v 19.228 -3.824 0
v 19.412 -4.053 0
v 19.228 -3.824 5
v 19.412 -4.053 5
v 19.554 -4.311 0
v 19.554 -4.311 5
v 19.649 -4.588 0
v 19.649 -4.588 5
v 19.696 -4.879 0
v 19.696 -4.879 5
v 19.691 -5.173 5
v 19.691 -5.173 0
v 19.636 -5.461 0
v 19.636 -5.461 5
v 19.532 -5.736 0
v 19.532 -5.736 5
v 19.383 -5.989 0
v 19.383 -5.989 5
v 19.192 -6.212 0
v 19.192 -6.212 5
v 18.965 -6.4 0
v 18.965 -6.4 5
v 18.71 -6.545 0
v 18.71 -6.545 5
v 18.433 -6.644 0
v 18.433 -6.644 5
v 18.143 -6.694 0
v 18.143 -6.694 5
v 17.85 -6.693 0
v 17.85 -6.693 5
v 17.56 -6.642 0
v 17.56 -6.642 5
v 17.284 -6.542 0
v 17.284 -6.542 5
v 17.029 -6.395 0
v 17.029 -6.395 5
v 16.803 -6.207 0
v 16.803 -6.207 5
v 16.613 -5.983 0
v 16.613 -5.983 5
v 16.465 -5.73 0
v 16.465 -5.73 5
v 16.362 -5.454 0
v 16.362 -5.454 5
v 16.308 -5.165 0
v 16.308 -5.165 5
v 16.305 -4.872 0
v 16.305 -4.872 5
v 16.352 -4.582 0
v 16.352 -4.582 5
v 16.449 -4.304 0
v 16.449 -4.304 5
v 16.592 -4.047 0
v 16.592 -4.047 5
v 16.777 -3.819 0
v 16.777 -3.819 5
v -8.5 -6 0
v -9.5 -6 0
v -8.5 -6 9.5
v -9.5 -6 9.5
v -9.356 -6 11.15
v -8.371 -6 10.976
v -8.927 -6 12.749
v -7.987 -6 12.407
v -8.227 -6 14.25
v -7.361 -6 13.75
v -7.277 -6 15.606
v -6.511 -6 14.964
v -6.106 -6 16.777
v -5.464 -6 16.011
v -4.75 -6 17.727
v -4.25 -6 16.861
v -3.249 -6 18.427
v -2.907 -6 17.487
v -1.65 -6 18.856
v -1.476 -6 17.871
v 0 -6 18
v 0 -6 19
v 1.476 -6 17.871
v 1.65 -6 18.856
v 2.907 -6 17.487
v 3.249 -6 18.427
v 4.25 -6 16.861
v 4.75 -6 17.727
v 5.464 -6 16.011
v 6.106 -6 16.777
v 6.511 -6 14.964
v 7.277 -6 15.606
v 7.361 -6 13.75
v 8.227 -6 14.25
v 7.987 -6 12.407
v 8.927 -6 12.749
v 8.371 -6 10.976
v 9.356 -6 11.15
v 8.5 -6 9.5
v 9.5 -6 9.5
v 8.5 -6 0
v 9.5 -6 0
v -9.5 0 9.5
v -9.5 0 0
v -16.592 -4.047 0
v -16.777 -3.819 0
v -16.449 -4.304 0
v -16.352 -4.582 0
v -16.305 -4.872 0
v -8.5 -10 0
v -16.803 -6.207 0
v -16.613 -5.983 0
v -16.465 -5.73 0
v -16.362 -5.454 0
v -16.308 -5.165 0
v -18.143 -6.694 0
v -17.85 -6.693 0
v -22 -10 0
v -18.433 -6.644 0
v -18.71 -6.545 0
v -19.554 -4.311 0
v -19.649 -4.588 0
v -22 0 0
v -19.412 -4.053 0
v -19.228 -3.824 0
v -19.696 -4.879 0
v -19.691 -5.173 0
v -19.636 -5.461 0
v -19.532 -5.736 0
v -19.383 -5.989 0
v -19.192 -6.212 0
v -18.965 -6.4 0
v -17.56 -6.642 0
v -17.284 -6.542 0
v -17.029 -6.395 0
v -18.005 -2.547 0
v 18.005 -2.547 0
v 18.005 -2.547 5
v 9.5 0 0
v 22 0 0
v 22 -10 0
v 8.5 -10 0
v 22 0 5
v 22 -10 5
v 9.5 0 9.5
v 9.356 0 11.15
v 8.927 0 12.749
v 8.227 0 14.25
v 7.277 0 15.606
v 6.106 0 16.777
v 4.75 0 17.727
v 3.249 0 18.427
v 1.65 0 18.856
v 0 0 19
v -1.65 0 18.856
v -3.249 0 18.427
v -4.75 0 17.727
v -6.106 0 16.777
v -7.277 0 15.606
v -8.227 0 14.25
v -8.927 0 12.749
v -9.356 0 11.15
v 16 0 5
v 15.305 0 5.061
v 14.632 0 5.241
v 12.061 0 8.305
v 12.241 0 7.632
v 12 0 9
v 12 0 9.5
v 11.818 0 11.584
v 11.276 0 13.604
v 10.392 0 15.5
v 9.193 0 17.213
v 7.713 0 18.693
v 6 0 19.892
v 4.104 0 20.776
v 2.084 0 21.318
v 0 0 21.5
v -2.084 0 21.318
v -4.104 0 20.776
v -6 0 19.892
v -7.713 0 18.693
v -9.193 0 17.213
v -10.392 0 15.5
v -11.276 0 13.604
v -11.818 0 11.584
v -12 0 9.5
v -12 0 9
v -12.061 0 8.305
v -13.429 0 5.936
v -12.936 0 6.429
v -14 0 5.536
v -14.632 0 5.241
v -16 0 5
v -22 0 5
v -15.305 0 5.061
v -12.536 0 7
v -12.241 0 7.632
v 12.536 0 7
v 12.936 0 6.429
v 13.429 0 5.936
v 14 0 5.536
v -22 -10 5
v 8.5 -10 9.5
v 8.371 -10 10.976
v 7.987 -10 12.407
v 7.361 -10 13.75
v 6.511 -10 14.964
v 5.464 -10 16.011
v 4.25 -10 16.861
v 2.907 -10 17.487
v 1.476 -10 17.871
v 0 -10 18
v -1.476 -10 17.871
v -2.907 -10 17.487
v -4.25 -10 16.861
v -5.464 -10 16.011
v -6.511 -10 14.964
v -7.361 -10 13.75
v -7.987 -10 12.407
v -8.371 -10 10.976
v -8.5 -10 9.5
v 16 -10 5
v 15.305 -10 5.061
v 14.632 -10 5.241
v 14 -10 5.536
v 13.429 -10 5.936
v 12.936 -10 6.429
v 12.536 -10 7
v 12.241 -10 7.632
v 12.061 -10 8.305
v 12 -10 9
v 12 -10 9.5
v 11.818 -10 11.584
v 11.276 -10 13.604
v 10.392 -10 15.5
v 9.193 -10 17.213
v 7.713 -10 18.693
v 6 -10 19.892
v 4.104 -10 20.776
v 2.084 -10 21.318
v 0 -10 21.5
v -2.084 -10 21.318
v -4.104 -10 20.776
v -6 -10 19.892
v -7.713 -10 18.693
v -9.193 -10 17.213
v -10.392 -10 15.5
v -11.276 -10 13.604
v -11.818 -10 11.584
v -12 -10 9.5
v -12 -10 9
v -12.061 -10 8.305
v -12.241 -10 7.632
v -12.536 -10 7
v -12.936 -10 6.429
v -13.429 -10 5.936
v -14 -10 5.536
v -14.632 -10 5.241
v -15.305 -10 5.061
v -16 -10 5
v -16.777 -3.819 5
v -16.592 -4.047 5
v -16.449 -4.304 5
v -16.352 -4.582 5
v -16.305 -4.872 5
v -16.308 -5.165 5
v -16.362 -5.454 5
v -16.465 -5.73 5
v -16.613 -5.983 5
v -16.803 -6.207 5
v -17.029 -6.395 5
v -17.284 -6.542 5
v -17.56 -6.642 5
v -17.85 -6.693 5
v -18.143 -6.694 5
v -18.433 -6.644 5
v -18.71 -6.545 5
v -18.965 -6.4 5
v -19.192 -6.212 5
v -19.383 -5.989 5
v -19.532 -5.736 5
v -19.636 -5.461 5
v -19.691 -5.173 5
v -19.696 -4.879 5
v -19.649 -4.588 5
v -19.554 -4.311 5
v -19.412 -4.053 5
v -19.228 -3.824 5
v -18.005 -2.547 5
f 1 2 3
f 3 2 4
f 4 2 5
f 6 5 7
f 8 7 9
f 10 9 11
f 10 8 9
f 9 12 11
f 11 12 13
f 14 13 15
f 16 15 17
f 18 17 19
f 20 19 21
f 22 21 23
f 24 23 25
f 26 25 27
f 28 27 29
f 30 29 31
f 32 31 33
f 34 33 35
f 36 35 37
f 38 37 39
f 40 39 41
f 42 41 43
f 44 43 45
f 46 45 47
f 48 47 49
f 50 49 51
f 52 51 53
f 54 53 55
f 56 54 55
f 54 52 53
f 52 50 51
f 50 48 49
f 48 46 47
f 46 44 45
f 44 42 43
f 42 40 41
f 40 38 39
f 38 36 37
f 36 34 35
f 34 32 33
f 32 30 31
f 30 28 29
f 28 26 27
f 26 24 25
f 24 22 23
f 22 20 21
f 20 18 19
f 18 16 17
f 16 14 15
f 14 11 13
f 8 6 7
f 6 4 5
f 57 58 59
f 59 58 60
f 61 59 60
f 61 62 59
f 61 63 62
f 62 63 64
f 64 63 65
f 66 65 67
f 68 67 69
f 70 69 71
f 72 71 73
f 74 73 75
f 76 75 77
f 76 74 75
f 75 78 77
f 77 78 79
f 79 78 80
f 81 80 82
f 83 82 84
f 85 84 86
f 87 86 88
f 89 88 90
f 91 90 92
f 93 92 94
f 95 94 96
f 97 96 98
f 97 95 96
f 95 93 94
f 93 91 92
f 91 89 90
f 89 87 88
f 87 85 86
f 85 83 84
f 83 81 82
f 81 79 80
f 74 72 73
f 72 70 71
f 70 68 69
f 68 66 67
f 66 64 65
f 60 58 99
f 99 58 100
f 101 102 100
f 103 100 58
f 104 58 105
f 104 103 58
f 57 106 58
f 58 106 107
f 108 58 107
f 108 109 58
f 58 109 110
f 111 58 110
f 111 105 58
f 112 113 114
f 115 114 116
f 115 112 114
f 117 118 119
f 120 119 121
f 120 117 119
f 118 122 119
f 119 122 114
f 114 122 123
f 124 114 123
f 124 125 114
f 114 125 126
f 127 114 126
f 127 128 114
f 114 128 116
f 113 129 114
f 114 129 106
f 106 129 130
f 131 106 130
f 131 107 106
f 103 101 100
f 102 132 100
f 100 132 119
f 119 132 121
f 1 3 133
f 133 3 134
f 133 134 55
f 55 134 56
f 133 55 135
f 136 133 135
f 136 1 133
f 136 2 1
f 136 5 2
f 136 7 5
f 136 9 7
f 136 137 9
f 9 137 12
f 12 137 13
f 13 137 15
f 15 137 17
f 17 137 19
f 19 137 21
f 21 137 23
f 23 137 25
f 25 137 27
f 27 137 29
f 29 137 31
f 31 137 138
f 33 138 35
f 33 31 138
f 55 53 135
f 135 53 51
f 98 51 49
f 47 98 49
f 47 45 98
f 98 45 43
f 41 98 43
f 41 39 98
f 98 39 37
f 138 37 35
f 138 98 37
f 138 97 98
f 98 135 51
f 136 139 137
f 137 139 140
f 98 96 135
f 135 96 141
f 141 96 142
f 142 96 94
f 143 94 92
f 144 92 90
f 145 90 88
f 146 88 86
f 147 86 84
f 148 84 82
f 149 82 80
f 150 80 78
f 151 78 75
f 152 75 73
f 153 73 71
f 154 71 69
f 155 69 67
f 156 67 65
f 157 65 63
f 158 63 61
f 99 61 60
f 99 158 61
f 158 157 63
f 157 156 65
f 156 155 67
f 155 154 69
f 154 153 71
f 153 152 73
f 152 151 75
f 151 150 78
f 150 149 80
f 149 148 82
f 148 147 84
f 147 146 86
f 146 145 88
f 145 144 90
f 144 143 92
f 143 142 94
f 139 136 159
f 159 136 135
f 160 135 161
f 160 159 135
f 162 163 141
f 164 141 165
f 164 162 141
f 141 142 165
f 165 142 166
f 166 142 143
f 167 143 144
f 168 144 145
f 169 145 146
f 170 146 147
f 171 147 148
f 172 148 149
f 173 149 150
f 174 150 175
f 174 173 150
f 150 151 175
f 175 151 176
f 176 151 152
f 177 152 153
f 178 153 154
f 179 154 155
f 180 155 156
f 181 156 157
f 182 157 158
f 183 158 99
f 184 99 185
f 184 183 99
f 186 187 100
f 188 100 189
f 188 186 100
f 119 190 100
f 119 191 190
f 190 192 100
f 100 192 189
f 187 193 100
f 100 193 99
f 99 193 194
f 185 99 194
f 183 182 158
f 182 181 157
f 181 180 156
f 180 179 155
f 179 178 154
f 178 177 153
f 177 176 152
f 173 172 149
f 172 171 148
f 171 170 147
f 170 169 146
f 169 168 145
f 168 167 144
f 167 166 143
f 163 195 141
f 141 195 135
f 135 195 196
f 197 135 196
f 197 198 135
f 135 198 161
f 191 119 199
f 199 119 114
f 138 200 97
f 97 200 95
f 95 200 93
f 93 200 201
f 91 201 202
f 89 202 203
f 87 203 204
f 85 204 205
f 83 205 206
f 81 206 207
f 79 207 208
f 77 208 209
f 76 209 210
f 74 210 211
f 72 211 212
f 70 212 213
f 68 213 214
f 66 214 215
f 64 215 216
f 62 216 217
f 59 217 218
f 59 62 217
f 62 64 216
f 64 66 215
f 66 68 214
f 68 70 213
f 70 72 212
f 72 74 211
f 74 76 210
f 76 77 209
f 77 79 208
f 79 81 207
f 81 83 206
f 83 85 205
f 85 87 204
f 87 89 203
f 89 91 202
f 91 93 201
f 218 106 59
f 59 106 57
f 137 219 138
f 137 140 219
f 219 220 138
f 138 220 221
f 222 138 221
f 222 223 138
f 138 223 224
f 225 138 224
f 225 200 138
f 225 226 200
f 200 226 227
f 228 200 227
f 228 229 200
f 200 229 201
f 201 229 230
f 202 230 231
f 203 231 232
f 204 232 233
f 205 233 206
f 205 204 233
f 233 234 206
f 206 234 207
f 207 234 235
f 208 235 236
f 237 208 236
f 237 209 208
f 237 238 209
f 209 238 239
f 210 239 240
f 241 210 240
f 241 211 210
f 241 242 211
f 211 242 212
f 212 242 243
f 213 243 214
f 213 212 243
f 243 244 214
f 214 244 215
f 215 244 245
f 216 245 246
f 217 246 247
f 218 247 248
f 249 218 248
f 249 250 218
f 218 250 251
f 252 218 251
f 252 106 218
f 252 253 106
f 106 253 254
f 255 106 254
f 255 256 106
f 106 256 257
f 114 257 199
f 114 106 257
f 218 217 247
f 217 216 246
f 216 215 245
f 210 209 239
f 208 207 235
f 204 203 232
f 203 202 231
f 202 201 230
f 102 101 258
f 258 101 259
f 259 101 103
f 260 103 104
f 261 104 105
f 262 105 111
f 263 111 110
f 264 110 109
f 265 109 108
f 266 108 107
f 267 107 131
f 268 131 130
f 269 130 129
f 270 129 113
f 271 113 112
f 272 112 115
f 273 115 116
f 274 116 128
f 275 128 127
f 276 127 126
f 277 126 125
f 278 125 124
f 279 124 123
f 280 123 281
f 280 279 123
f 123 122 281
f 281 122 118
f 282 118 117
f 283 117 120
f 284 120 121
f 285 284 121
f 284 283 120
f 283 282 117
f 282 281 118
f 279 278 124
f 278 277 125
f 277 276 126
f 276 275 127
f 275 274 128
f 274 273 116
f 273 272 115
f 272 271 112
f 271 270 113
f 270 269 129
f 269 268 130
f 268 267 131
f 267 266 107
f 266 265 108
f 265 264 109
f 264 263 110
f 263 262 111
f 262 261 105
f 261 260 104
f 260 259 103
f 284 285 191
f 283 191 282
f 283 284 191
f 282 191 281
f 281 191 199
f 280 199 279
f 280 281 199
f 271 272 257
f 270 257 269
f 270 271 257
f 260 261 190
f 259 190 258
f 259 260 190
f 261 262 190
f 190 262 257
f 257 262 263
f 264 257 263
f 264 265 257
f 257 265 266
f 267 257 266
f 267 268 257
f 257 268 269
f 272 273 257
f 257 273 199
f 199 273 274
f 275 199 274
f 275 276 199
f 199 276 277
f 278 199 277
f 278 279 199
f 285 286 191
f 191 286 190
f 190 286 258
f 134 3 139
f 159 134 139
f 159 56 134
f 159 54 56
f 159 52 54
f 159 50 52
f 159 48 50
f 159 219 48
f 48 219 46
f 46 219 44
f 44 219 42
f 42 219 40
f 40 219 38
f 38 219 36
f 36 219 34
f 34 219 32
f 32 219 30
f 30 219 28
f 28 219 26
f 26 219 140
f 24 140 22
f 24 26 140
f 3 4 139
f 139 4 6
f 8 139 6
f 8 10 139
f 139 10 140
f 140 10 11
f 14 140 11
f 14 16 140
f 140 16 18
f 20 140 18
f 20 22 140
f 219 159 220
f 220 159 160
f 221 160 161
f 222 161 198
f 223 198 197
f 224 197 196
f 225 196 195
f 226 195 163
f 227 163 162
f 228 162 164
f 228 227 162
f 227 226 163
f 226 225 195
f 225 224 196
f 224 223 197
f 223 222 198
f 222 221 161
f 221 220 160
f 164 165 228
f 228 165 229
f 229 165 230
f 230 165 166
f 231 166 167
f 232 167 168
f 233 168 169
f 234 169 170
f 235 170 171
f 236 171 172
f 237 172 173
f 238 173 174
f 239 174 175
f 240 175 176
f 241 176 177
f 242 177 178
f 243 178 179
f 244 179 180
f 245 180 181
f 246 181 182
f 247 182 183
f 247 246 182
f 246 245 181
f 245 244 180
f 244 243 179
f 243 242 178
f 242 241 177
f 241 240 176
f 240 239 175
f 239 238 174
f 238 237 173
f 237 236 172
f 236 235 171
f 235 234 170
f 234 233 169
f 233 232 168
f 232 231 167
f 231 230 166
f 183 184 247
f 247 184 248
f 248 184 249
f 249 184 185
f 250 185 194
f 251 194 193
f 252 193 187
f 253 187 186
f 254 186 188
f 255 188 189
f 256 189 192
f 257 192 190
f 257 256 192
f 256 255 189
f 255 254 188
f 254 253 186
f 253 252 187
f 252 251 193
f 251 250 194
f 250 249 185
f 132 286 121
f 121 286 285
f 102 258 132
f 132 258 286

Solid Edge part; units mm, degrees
sketch "Sketch1" plane through (0, 0, 0) normal (0, -1, 0) x (1, 0, 0)
  line L0 (22, 0) -> (22, 5)
  line L1 (22, 5) -> (16, 5)
  arc A0 (12, 9) -> (16, 5) centre (16, 9) ccw
  line L2 (12, 9.5) -> (12, 9)
  line L3 (-12, 9.5) -> (-12, 9)
  arc A1 (-16, 5) -> (-12, 9) centre (-16, 9) ccw
  line L4 (-16, 5) -> (-22, 5)
  line L5 (-22, 5) -> (-22, 0)
  line L6 (-22, 0) -> (-9.5, 0)
  line L7 (-9.5, 9.5) -> (-9.5, 0)
  line L8 (9.5, 9.5) -> (9.5, 0)
  line L9 (9.5, 0) -> (22, 0)
  arc A2 (12, 9.5) -> (-12, 9.5) centre (0, 9.5) ccw
  arc A3 (-9.5, 9.5) -> (9.5, 9.5) centre (0, 9.5) cw
  dimension "D1" = 19
  dimension "D2" = 12
  dimension "D3" = 5
  dimension "D4" = 19
  dimension "D5" = 10
  dimension "D6" = 44
extrude "Protrusion1" add sketch "Sketch1" along normal blind 10
sketch "Sketch2" plane through (10.6847, -6, 5) normal (0, 0, 1) x (1, 0, 0)
  line L0 (-29.9125, 2.1758) -> (-28.6898, 3.4526)
  line L1 (-28.6898, 3.4526) -> (-27.4618, 2.1809)
  arc A0 (-29.9125, 2.1758) -> (-27.4618, 2.1809) centre (-28.6847, 1) ccw
  dimension "D1" = 3.4
extrude "Cutout1" cut sketch "Sketch2" against normal through all
mirror "Mirror1" about plane through (0, 0, 0) normal (1, 0, 0) of "Cutout1"
sketch "Sketch3" plane through (0, -10, 10.75) normal (0, -1, 0) x (1, 0, 0)
  line L0 (-9.5, -10.75) -> (-9.5, -1.25)
  line L1 (9.5, -1.25) -> (9.5, -10.75)
  line L2 (8.5, -10.75) -> (9.5, -10.75)
  line L3 (8.5, -1.25) -> (8.5, -10.75)
  arc A0 (-8.5, -1.25) -> (8.5, -1.25) centre (0, -1.25) cw
  line L4 (-8.5, -10.75) -> (-8.5, -1.25)
  line L5 (-8.5, -10.75) -> (-9.5, -10.75)
  arc A1 (-9.5, -1.25) -> (9.5, -1.25) centre (0, -1.25) cw
extrude "ExtrudedProtrusion_2" add sketch "Sketch3" against normal blind 4
